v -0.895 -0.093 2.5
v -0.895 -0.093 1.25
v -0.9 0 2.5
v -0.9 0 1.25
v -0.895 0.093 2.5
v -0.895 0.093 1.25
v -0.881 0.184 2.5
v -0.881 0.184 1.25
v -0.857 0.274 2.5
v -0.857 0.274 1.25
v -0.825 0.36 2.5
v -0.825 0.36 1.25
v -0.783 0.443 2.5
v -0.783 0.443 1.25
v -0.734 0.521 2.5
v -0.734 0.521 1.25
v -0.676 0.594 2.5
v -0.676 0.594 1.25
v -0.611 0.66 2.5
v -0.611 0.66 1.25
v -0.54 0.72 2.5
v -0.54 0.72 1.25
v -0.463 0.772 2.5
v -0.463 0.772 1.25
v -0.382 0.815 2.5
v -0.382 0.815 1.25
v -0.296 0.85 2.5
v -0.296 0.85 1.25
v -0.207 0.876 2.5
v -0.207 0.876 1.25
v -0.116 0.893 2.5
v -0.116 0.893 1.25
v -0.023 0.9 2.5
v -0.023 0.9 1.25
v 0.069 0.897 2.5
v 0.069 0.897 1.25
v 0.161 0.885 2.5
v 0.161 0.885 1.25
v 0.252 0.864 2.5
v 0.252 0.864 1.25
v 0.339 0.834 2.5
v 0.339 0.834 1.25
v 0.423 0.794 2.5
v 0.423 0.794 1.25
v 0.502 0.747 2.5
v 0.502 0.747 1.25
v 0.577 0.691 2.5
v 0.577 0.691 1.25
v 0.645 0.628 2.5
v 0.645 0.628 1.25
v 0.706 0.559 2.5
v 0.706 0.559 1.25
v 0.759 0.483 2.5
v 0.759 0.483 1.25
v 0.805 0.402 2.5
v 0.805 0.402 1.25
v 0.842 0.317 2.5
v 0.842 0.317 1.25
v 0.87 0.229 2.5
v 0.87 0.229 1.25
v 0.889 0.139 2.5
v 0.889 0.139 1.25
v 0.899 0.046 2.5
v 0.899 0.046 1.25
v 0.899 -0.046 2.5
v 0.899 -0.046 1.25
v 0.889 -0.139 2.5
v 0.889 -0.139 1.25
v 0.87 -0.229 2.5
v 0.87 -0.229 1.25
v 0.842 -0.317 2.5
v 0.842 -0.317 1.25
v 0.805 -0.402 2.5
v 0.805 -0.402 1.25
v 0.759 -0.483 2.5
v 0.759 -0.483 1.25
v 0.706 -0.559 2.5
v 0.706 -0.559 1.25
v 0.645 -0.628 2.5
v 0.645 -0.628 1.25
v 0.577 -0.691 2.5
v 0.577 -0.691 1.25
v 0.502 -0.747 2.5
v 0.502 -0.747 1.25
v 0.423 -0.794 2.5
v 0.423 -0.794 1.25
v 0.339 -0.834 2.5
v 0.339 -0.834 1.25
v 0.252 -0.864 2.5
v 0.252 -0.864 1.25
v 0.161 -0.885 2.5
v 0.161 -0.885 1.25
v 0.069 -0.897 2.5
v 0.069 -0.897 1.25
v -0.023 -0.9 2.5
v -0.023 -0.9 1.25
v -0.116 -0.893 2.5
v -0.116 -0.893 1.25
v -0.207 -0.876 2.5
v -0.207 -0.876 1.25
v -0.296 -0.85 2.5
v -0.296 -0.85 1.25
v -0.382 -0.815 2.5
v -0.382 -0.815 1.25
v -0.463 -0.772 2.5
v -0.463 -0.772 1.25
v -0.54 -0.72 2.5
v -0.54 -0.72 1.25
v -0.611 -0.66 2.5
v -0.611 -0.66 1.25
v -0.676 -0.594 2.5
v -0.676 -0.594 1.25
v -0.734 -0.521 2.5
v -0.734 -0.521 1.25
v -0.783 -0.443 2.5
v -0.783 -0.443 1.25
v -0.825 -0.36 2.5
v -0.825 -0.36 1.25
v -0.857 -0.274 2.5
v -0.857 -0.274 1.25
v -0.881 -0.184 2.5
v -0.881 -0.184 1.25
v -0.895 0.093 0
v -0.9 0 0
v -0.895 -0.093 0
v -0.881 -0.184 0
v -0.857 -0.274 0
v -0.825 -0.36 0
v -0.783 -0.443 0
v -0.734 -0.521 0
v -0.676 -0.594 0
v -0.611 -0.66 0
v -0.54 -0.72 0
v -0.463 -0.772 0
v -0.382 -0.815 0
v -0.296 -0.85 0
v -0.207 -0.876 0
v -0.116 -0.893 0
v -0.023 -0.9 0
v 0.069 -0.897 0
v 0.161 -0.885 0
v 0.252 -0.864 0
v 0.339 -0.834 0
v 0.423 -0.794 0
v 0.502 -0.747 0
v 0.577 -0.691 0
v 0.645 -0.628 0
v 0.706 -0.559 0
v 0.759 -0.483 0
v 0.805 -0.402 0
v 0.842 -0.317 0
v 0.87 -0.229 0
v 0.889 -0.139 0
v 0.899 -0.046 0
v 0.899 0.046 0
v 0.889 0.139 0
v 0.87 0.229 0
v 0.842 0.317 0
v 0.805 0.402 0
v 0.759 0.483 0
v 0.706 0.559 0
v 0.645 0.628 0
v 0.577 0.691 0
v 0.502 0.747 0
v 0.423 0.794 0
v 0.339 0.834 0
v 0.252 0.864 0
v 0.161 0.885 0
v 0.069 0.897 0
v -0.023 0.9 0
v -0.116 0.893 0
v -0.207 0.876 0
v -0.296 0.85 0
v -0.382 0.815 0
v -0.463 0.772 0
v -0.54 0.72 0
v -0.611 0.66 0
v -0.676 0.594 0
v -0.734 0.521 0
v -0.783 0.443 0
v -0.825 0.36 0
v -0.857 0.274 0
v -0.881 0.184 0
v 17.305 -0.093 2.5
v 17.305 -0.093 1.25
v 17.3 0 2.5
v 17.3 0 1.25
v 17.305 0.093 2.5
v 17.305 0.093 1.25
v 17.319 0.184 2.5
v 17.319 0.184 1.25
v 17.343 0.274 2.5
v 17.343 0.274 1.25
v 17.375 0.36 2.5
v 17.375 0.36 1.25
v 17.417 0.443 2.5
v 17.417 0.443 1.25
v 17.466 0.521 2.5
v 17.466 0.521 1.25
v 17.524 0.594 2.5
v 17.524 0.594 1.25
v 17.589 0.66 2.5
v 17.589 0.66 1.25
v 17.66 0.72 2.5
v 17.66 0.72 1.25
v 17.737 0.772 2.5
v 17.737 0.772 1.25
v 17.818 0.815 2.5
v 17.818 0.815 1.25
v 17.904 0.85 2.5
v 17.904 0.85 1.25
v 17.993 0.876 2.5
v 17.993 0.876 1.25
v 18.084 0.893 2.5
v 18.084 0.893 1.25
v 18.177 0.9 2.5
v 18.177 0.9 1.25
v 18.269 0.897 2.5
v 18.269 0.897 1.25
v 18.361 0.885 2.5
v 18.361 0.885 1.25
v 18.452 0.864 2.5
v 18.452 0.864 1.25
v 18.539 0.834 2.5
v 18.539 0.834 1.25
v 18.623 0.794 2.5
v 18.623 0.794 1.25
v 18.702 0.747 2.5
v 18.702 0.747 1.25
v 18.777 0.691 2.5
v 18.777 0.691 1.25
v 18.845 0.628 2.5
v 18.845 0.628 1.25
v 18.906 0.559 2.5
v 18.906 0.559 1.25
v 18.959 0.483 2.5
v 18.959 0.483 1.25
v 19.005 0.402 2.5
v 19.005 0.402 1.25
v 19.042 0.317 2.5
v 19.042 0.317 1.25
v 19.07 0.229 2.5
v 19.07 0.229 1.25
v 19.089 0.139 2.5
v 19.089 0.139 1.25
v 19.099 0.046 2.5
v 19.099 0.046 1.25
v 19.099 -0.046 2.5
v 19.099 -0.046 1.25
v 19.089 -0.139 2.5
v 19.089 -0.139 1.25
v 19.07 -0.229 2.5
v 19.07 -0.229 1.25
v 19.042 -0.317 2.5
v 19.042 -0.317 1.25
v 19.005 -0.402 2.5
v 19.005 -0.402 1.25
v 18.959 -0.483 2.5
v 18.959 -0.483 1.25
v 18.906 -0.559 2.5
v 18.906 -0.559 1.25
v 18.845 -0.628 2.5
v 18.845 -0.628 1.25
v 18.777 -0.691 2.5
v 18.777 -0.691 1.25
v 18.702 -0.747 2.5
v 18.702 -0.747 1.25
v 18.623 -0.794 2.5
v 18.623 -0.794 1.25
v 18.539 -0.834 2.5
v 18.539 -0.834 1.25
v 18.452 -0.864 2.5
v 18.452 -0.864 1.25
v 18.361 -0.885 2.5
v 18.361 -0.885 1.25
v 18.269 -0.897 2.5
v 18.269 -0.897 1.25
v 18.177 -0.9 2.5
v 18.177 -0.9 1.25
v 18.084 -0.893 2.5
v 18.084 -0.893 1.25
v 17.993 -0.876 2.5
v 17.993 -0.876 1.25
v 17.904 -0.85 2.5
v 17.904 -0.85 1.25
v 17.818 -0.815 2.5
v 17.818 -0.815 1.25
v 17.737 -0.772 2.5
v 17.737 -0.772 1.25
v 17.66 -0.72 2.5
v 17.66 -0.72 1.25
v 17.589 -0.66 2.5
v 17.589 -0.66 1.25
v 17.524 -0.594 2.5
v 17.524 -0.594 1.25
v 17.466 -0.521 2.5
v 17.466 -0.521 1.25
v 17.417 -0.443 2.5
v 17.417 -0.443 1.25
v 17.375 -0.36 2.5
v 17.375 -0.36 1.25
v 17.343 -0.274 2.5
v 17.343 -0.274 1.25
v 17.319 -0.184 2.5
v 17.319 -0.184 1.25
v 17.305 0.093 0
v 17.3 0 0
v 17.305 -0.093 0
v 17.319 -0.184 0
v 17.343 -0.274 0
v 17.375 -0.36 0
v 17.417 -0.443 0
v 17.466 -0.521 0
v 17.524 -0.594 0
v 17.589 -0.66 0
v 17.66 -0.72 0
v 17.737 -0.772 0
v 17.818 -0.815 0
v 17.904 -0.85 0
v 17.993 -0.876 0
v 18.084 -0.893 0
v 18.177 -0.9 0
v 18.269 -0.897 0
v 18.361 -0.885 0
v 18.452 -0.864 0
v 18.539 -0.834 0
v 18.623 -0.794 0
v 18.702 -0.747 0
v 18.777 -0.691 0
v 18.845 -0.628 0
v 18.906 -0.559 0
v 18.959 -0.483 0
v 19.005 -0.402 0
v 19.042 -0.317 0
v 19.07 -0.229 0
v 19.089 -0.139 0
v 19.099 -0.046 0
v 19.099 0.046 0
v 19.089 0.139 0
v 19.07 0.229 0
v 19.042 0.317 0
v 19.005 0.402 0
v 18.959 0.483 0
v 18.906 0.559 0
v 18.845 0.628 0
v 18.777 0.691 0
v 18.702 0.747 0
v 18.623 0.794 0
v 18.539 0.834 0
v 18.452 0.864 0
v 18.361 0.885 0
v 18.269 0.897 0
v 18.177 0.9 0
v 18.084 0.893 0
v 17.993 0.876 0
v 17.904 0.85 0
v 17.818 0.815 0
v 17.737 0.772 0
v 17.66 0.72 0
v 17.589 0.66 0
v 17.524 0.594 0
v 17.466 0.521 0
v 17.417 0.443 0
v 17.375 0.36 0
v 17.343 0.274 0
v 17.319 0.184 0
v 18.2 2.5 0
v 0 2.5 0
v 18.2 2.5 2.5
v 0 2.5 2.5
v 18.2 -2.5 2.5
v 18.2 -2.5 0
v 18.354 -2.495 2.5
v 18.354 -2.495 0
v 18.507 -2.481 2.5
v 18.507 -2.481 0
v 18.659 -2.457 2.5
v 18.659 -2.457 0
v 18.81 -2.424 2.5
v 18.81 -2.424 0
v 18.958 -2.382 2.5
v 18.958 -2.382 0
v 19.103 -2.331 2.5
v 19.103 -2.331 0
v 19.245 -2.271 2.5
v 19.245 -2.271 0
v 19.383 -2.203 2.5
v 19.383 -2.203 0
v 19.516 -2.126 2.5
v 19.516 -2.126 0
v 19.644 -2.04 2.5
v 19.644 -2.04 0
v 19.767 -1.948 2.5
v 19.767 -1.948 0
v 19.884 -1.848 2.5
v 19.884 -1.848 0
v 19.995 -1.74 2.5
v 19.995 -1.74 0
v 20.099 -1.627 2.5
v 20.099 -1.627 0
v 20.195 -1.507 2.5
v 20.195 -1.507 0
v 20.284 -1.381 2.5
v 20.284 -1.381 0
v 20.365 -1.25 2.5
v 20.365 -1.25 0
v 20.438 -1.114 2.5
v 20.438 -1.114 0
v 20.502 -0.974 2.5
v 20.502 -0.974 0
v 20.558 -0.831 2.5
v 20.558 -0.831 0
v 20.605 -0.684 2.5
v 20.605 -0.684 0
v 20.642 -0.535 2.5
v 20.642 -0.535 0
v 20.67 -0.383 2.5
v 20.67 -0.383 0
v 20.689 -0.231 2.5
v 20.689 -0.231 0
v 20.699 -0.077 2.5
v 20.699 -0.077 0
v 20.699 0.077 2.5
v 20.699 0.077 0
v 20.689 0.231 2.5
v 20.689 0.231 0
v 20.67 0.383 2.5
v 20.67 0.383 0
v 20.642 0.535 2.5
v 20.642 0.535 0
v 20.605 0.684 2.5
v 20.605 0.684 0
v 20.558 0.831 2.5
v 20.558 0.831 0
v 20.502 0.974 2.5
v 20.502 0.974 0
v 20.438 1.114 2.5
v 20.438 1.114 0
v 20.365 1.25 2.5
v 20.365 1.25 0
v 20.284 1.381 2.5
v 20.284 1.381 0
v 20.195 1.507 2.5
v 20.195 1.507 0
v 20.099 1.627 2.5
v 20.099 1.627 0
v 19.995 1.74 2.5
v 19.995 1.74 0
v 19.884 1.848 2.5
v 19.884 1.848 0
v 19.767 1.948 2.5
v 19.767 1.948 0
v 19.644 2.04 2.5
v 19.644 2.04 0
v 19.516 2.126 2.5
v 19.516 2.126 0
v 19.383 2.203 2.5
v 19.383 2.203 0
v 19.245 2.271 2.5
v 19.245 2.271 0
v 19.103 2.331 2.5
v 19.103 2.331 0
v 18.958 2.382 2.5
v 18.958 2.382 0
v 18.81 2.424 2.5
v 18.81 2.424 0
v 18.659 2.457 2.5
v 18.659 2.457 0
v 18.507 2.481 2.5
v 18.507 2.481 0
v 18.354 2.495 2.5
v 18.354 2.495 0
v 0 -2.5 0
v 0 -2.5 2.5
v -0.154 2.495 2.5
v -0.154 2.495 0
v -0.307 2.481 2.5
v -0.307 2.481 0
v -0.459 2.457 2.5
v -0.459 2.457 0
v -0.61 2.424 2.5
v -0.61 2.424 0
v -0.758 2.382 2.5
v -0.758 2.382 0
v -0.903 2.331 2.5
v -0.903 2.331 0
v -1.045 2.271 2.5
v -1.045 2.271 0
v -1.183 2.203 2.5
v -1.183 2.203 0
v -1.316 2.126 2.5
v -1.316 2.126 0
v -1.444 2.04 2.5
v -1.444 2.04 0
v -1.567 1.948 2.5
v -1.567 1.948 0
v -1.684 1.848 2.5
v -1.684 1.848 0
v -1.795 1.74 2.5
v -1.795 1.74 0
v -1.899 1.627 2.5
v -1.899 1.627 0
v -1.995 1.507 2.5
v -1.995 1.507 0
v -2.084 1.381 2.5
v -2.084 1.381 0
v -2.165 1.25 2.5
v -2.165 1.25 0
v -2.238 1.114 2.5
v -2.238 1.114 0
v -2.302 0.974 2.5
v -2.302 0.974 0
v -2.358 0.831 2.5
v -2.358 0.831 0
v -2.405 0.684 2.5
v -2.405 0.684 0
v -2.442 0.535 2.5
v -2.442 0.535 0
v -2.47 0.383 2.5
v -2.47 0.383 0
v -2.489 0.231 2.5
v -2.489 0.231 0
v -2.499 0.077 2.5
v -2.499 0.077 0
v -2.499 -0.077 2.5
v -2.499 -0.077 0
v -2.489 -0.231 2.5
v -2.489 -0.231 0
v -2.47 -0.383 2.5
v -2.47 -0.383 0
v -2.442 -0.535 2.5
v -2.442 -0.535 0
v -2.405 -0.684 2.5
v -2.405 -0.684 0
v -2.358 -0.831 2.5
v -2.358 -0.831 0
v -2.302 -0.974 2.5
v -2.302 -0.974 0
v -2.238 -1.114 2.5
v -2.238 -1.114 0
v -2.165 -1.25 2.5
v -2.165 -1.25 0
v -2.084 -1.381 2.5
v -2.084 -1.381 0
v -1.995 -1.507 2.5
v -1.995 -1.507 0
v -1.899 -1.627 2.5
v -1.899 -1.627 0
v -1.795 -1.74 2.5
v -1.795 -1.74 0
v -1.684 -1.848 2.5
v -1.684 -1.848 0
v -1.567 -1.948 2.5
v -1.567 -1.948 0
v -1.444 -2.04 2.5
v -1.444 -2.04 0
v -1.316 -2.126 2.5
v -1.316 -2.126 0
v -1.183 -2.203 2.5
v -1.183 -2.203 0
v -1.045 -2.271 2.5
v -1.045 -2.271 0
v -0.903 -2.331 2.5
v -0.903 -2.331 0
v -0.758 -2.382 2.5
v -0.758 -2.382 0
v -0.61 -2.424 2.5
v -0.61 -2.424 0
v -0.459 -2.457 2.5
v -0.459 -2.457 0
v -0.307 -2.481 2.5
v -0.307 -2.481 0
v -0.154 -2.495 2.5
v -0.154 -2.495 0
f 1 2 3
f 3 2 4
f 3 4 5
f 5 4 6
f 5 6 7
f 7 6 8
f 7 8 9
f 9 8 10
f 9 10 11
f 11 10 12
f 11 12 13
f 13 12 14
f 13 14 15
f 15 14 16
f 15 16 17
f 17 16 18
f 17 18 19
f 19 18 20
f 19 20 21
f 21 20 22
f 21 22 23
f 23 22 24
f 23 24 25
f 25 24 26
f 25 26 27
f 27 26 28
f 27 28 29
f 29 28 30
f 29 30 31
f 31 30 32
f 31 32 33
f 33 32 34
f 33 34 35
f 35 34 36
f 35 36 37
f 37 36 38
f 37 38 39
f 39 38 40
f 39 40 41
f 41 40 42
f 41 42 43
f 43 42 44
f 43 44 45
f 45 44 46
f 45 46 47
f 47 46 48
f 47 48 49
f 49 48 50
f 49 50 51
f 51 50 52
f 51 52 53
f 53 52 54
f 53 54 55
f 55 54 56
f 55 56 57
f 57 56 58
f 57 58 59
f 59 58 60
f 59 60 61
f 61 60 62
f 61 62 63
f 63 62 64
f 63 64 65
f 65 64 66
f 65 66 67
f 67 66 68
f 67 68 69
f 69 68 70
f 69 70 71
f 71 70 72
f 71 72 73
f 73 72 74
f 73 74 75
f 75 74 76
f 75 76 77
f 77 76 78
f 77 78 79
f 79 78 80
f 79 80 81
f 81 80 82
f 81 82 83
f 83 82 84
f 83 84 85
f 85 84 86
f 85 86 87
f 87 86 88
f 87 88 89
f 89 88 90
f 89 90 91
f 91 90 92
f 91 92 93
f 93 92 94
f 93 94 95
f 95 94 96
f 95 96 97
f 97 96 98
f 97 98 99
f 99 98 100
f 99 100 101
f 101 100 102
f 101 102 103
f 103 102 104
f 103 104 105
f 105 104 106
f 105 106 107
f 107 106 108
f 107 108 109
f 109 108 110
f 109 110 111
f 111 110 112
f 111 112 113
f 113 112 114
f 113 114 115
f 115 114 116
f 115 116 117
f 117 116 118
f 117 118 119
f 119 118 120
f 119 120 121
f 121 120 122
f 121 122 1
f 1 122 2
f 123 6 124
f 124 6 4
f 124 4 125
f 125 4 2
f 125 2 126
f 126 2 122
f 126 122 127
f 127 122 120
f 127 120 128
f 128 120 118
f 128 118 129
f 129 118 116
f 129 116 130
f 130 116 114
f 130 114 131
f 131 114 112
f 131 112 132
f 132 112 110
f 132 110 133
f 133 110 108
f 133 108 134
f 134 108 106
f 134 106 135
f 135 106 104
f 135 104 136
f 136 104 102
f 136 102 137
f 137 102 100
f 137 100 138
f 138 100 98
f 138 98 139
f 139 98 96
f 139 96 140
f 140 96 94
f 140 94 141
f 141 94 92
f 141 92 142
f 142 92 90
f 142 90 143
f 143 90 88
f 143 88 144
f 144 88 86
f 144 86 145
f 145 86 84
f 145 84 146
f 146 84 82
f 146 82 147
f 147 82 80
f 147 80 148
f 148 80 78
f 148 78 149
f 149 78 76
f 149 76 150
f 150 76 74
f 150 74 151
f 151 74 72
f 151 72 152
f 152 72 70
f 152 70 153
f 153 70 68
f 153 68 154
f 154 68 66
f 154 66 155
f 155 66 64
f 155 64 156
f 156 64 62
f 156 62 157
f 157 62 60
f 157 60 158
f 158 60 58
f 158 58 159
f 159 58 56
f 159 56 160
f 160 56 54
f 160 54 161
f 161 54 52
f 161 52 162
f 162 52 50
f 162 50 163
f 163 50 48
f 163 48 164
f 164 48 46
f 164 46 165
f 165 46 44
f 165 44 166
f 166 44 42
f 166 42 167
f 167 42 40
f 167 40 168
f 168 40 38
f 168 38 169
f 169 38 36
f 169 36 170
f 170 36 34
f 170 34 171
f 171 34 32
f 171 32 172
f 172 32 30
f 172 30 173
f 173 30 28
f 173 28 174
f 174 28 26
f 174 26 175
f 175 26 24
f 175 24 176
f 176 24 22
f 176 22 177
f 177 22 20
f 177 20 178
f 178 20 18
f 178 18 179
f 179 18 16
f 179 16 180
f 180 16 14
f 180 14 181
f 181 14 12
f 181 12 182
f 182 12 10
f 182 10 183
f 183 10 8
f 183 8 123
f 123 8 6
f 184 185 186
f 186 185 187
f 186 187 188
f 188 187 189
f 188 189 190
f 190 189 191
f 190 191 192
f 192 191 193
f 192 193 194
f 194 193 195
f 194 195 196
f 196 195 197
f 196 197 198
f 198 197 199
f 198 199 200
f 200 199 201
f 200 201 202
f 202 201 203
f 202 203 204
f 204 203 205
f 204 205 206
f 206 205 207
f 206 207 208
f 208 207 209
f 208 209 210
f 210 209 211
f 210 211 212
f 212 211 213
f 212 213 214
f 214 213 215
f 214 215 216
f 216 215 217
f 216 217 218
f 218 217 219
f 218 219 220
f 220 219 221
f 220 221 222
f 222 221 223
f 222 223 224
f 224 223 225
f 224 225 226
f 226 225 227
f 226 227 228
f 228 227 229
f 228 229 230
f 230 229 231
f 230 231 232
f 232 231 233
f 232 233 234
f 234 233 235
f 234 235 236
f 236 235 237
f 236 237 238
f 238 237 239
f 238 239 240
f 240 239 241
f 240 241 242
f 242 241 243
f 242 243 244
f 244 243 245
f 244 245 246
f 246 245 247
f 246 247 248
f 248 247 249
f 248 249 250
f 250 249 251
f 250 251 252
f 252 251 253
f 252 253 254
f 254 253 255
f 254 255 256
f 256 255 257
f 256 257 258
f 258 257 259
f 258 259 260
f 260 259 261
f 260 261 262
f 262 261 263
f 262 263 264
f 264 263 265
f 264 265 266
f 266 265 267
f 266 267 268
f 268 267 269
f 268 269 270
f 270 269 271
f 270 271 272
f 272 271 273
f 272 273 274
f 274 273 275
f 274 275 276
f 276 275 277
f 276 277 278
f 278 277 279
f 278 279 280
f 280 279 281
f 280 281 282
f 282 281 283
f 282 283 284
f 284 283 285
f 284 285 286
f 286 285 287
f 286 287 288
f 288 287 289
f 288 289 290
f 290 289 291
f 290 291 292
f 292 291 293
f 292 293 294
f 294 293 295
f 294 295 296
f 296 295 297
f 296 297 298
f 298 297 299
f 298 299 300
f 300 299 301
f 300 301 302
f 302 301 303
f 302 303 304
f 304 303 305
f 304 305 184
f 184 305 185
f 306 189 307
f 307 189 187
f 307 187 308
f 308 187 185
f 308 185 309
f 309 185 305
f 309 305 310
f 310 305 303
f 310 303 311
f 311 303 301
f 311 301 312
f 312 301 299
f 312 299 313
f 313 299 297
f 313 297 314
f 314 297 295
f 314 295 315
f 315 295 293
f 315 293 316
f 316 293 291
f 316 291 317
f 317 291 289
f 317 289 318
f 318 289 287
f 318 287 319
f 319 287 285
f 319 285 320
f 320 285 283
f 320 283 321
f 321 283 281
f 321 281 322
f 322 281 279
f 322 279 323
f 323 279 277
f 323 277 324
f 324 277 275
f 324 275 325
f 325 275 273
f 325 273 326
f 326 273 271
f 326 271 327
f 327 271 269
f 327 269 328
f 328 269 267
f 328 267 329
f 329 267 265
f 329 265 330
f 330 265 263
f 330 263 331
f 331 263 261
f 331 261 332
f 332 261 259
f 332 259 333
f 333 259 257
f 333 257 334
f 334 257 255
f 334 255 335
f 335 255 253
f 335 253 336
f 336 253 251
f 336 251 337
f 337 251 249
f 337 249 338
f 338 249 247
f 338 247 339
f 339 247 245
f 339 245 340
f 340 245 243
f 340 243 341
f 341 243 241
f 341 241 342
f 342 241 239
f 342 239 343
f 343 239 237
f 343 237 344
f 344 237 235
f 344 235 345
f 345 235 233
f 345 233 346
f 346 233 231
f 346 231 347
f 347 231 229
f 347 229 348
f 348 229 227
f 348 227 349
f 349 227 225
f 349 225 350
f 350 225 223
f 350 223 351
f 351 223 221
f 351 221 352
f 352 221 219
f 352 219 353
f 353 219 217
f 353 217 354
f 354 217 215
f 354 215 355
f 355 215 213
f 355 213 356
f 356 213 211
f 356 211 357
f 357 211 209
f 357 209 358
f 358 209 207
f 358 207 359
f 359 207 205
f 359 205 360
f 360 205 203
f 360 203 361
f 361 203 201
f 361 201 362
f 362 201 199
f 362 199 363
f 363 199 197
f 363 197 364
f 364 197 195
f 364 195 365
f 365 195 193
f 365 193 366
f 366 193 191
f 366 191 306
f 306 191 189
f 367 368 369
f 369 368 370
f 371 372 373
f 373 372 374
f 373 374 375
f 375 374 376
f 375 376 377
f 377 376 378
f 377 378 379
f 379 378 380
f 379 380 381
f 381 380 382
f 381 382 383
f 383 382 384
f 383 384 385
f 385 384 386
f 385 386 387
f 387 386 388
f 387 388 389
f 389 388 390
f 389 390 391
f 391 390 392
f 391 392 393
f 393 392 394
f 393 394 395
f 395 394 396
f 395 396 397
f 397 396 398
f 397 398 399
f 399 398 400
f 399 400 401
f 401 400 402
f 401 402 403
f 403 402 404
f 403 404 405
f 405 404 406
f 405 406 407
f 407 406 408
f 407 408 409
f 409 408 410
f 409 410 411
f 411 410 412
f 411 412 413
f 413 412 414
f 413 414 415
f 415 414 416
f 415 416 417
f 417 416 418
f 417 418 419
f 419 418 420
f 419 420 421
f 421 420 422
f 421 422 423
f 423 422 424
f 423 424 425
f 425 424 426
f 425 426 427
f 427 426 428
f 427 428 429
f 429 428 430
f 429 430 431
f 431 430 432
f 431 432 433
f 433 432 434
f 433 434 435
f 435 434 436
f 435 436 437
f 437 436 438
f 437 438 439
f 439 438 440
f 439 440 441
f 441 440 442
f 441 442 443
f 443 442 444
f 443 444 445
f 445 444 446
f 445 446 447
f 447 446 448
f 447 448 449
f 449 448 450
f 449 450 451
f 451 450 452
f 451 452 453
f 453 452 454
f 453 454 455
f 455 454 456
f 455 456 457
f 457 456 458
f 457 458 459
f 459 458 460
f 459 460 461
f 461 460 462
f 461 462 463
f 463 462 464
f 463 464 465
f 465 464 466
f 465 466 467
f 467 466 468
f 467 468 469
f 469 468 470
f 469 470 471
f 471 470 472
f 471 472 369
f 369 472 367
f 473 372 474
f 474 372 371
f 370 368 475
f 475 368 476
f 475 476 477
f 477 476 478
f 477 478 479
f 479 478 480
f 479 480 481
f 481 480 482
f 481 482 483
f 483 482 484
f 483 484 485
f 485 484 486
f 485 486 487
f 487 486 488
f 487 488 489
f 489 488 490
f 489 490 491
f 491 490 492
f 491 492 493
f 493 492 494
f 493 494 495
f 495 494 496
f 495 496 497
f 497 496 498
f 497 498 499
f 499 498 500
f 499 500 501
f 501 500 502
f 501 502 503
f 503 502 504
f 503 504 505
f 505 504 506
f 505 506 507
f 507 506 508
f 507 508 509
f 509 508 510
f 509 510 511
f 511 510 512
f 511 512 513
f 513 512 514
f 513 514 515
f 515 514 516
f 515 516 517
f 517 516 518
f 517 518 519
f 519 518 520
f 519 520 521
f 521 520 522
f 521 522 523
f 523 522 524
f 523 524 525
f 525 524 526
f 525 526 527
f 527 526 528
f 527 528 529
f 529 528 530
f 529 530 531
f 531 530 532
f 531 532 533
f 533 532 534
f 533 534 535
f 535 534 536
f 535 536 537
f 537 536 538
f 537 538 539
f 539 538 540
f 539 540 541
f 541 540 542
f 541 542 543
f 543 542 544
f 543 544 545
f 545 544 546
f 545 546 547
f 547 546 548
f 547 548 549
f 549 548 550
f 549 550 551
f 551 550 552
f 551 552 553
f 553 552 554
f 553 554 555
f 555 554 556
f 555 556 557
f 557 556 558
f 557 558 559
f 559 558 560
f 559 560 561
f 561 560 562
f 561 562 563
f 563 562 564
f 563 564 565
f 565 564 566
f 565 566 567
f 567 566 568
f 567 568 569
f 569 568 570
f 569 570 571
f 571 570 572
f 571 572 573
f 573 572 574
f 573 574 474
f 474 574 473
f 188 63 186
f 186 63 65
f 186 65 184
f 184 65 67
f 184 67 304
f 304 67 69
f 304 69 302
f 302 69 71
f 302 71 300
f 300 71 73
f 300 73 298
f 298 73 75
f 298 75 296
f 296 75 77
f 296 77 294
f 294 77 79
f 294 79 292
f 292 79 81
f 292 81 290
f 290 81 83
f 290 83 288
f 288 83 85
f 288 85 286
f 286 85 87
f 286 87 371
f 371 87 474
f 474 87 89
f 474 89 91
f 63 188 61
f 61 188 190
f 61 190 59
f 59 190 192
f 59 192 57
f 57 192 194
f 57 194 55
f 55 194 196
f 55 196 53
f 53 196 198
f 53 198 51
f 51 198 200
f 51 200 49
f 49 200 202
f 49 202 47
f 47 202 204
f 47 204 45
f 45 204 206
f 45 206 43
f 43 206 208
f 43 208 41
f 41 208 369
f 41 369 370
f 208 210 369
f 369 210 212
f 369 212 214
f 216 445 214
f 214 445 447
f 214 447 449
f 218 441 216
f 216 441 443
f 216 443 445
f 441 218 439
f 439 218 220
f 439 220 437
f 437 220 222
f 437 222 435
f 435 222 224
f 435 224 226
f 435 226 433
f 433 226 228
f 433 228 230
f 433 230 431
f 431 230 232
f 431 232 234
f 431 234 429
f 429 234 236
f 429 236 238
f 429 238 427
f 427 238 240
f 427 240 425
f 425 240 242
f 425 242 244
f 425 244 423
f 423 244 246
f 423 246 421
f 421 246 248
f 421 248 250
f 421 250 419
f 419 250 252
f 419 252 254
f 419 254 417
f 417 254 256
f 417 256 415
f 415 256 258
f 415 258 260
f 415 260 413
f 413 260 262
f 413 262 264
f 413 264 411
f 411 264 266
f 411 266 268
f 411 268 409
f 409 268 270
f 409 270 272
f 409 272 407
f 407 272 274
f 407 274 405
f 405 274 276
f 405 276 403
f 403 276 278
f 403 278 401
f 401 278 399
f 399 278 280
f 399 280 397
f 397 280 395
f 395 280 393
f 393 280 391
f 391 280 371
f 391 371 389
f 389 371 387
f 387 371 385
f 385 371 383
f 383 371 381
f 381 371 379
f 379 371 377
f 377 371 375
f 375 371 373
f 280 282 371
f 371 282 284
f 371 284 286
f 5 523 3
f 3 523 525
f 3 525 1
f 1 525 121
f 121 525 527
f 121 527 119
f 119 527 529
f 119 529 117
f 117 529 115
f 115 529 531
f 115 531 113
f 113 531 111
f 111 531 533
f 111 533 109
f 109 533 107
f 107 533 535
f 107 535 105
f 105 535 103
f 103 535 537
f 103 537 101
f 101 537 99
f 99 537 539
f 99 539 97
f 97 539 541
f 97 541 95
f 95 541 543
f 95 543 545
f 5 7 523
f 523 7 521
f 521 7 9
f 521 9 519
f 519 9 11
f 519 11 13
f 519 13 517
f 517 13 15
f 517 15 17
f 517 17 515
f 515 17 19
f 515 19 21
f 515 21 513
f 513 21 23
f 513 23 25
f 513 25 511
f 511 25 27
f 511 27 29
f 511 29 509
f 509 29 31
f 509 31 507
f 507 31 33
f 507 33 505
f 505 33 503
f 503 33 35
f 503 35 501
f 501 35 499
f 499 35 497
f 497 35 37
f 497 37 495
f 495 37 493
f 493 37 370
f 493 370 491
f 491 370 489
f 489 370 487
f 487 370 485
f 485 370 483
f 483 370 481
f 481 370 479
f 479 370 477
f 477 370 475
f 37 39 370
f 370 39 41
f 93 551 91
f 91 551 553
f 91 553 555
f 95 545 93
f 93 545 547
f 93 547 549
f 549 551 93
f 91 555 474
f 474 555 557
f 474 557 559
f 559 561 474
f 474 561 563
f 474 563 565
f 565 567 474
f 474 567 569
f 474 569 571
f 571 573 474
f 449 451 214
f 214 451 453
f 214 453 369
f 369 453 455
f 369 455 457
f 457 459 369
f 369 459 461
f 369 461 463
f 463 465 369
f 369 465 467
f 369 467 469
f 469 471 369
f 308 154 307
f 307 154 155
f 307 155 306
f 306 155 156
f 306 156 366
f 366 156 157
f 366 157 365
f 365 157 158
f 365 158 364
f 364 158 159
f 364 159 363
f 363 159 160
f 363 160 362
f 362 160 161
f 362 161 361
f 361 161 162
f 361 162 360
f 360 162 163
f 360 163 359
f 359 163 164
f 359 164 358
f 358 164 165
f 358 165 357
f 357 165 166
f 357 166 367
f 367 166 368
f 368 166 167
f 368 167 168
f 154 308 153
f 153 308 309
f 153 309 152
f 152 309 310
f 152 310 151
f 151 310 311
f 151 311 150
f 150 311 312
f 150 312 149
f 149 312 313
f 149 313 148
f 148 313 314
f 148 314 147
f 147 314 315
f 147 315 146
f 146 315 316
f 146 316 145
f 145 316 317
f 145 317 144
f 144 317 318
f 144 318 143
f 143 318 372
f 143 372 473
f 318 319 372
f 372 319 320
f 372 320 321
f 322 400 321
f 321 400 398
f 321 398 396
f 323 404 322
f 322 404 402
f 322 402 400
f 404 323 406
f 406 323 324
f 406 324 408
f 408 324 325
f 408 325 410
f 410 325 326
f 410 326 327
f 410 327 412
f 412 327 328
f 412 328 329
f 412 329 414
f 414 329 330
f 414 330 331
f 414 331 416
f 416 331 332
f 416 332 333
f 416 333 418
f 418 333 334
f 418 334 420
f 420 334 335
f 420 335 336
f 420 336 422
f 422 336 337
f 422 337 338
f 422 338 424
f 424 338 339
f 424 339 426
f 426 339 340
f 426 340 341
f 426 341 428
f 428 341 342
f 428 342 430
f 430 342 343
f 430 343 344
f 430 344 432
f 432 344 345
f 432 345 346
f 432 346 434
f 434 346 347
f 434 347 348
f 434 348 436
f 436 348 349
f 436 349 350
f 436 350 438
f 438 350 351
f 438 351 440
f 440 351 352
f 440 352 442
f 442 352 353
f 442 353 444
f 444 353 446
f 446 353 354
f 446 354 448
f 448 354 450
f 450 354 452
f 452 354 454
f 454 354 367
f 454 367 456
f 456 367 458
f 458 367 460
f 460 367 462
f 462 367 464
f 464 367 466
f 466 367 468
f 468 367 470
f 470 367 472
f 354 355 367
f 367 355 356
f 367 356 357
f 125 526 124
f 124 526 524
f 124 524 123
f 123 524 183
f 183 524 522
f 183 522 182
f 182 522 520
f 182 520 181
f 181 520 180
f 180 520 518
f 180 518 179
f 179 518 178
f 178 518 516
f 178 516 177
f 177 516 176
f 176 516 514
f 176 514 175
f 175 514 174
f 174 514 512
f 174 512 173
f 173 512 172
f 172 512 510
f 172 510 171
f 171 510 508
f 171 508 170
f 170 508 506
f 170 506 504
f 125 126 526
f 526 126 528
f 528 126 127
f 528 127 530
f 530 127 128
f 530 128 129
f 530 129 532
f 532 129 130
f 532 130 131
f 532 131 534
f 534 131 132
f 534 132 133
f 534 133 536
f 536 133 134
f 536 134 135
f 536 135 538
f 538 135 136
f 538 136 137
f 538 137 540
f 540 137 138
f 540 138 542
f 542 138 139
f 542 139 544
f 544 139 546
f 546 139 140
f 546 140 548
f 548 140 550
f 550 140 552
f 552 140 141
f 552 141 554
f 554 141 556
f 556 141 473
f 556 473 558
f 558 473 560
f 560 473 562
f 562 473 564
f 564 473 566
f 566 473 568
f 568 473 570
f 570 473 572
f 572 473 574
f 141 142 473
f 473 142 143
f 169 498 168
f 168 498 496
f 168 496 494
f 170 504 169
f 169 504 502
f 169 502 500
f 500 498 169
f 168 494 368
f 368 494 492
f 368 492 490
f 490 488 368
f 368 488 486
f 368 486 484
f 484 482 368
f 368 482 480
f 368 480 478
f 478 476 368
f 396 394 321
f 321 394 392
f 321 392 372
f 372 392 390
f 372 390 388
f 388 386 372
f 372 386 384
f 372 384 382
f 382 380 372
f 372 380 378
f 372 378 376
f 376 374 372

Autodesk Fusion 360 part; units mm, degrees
sketch "Sketch1" plane through (0, 0, 0) normal (0, 0, 1) x (1, 0, 0)
  line L0 (0, -2.5) -> (18.2, -2.5)
  arc A0 (18.2, -2.5) -> (18.2, 2.5) centre (18.2, 0) ccw
  line L1 (18.2, 2.5) -> (0, 2.5)
  arc A1 (0, 2.5) -> (0, -2.5) centre (0, 0) ccw
  line L2 (0, 0) -> (18.2, 0) construction
  circle A2 centre (0, 0) radius 0.9
  circle A3 centre (18.2, 0) radius 0.9
  dimension "d1" = 18.2
  dimension "d2" = 1.8
  dimension "d3" = 1.8
  dimension "d4" = 2.5
extrude "Extrude1" add sketch "Sketch1" along normal blind 2.5
